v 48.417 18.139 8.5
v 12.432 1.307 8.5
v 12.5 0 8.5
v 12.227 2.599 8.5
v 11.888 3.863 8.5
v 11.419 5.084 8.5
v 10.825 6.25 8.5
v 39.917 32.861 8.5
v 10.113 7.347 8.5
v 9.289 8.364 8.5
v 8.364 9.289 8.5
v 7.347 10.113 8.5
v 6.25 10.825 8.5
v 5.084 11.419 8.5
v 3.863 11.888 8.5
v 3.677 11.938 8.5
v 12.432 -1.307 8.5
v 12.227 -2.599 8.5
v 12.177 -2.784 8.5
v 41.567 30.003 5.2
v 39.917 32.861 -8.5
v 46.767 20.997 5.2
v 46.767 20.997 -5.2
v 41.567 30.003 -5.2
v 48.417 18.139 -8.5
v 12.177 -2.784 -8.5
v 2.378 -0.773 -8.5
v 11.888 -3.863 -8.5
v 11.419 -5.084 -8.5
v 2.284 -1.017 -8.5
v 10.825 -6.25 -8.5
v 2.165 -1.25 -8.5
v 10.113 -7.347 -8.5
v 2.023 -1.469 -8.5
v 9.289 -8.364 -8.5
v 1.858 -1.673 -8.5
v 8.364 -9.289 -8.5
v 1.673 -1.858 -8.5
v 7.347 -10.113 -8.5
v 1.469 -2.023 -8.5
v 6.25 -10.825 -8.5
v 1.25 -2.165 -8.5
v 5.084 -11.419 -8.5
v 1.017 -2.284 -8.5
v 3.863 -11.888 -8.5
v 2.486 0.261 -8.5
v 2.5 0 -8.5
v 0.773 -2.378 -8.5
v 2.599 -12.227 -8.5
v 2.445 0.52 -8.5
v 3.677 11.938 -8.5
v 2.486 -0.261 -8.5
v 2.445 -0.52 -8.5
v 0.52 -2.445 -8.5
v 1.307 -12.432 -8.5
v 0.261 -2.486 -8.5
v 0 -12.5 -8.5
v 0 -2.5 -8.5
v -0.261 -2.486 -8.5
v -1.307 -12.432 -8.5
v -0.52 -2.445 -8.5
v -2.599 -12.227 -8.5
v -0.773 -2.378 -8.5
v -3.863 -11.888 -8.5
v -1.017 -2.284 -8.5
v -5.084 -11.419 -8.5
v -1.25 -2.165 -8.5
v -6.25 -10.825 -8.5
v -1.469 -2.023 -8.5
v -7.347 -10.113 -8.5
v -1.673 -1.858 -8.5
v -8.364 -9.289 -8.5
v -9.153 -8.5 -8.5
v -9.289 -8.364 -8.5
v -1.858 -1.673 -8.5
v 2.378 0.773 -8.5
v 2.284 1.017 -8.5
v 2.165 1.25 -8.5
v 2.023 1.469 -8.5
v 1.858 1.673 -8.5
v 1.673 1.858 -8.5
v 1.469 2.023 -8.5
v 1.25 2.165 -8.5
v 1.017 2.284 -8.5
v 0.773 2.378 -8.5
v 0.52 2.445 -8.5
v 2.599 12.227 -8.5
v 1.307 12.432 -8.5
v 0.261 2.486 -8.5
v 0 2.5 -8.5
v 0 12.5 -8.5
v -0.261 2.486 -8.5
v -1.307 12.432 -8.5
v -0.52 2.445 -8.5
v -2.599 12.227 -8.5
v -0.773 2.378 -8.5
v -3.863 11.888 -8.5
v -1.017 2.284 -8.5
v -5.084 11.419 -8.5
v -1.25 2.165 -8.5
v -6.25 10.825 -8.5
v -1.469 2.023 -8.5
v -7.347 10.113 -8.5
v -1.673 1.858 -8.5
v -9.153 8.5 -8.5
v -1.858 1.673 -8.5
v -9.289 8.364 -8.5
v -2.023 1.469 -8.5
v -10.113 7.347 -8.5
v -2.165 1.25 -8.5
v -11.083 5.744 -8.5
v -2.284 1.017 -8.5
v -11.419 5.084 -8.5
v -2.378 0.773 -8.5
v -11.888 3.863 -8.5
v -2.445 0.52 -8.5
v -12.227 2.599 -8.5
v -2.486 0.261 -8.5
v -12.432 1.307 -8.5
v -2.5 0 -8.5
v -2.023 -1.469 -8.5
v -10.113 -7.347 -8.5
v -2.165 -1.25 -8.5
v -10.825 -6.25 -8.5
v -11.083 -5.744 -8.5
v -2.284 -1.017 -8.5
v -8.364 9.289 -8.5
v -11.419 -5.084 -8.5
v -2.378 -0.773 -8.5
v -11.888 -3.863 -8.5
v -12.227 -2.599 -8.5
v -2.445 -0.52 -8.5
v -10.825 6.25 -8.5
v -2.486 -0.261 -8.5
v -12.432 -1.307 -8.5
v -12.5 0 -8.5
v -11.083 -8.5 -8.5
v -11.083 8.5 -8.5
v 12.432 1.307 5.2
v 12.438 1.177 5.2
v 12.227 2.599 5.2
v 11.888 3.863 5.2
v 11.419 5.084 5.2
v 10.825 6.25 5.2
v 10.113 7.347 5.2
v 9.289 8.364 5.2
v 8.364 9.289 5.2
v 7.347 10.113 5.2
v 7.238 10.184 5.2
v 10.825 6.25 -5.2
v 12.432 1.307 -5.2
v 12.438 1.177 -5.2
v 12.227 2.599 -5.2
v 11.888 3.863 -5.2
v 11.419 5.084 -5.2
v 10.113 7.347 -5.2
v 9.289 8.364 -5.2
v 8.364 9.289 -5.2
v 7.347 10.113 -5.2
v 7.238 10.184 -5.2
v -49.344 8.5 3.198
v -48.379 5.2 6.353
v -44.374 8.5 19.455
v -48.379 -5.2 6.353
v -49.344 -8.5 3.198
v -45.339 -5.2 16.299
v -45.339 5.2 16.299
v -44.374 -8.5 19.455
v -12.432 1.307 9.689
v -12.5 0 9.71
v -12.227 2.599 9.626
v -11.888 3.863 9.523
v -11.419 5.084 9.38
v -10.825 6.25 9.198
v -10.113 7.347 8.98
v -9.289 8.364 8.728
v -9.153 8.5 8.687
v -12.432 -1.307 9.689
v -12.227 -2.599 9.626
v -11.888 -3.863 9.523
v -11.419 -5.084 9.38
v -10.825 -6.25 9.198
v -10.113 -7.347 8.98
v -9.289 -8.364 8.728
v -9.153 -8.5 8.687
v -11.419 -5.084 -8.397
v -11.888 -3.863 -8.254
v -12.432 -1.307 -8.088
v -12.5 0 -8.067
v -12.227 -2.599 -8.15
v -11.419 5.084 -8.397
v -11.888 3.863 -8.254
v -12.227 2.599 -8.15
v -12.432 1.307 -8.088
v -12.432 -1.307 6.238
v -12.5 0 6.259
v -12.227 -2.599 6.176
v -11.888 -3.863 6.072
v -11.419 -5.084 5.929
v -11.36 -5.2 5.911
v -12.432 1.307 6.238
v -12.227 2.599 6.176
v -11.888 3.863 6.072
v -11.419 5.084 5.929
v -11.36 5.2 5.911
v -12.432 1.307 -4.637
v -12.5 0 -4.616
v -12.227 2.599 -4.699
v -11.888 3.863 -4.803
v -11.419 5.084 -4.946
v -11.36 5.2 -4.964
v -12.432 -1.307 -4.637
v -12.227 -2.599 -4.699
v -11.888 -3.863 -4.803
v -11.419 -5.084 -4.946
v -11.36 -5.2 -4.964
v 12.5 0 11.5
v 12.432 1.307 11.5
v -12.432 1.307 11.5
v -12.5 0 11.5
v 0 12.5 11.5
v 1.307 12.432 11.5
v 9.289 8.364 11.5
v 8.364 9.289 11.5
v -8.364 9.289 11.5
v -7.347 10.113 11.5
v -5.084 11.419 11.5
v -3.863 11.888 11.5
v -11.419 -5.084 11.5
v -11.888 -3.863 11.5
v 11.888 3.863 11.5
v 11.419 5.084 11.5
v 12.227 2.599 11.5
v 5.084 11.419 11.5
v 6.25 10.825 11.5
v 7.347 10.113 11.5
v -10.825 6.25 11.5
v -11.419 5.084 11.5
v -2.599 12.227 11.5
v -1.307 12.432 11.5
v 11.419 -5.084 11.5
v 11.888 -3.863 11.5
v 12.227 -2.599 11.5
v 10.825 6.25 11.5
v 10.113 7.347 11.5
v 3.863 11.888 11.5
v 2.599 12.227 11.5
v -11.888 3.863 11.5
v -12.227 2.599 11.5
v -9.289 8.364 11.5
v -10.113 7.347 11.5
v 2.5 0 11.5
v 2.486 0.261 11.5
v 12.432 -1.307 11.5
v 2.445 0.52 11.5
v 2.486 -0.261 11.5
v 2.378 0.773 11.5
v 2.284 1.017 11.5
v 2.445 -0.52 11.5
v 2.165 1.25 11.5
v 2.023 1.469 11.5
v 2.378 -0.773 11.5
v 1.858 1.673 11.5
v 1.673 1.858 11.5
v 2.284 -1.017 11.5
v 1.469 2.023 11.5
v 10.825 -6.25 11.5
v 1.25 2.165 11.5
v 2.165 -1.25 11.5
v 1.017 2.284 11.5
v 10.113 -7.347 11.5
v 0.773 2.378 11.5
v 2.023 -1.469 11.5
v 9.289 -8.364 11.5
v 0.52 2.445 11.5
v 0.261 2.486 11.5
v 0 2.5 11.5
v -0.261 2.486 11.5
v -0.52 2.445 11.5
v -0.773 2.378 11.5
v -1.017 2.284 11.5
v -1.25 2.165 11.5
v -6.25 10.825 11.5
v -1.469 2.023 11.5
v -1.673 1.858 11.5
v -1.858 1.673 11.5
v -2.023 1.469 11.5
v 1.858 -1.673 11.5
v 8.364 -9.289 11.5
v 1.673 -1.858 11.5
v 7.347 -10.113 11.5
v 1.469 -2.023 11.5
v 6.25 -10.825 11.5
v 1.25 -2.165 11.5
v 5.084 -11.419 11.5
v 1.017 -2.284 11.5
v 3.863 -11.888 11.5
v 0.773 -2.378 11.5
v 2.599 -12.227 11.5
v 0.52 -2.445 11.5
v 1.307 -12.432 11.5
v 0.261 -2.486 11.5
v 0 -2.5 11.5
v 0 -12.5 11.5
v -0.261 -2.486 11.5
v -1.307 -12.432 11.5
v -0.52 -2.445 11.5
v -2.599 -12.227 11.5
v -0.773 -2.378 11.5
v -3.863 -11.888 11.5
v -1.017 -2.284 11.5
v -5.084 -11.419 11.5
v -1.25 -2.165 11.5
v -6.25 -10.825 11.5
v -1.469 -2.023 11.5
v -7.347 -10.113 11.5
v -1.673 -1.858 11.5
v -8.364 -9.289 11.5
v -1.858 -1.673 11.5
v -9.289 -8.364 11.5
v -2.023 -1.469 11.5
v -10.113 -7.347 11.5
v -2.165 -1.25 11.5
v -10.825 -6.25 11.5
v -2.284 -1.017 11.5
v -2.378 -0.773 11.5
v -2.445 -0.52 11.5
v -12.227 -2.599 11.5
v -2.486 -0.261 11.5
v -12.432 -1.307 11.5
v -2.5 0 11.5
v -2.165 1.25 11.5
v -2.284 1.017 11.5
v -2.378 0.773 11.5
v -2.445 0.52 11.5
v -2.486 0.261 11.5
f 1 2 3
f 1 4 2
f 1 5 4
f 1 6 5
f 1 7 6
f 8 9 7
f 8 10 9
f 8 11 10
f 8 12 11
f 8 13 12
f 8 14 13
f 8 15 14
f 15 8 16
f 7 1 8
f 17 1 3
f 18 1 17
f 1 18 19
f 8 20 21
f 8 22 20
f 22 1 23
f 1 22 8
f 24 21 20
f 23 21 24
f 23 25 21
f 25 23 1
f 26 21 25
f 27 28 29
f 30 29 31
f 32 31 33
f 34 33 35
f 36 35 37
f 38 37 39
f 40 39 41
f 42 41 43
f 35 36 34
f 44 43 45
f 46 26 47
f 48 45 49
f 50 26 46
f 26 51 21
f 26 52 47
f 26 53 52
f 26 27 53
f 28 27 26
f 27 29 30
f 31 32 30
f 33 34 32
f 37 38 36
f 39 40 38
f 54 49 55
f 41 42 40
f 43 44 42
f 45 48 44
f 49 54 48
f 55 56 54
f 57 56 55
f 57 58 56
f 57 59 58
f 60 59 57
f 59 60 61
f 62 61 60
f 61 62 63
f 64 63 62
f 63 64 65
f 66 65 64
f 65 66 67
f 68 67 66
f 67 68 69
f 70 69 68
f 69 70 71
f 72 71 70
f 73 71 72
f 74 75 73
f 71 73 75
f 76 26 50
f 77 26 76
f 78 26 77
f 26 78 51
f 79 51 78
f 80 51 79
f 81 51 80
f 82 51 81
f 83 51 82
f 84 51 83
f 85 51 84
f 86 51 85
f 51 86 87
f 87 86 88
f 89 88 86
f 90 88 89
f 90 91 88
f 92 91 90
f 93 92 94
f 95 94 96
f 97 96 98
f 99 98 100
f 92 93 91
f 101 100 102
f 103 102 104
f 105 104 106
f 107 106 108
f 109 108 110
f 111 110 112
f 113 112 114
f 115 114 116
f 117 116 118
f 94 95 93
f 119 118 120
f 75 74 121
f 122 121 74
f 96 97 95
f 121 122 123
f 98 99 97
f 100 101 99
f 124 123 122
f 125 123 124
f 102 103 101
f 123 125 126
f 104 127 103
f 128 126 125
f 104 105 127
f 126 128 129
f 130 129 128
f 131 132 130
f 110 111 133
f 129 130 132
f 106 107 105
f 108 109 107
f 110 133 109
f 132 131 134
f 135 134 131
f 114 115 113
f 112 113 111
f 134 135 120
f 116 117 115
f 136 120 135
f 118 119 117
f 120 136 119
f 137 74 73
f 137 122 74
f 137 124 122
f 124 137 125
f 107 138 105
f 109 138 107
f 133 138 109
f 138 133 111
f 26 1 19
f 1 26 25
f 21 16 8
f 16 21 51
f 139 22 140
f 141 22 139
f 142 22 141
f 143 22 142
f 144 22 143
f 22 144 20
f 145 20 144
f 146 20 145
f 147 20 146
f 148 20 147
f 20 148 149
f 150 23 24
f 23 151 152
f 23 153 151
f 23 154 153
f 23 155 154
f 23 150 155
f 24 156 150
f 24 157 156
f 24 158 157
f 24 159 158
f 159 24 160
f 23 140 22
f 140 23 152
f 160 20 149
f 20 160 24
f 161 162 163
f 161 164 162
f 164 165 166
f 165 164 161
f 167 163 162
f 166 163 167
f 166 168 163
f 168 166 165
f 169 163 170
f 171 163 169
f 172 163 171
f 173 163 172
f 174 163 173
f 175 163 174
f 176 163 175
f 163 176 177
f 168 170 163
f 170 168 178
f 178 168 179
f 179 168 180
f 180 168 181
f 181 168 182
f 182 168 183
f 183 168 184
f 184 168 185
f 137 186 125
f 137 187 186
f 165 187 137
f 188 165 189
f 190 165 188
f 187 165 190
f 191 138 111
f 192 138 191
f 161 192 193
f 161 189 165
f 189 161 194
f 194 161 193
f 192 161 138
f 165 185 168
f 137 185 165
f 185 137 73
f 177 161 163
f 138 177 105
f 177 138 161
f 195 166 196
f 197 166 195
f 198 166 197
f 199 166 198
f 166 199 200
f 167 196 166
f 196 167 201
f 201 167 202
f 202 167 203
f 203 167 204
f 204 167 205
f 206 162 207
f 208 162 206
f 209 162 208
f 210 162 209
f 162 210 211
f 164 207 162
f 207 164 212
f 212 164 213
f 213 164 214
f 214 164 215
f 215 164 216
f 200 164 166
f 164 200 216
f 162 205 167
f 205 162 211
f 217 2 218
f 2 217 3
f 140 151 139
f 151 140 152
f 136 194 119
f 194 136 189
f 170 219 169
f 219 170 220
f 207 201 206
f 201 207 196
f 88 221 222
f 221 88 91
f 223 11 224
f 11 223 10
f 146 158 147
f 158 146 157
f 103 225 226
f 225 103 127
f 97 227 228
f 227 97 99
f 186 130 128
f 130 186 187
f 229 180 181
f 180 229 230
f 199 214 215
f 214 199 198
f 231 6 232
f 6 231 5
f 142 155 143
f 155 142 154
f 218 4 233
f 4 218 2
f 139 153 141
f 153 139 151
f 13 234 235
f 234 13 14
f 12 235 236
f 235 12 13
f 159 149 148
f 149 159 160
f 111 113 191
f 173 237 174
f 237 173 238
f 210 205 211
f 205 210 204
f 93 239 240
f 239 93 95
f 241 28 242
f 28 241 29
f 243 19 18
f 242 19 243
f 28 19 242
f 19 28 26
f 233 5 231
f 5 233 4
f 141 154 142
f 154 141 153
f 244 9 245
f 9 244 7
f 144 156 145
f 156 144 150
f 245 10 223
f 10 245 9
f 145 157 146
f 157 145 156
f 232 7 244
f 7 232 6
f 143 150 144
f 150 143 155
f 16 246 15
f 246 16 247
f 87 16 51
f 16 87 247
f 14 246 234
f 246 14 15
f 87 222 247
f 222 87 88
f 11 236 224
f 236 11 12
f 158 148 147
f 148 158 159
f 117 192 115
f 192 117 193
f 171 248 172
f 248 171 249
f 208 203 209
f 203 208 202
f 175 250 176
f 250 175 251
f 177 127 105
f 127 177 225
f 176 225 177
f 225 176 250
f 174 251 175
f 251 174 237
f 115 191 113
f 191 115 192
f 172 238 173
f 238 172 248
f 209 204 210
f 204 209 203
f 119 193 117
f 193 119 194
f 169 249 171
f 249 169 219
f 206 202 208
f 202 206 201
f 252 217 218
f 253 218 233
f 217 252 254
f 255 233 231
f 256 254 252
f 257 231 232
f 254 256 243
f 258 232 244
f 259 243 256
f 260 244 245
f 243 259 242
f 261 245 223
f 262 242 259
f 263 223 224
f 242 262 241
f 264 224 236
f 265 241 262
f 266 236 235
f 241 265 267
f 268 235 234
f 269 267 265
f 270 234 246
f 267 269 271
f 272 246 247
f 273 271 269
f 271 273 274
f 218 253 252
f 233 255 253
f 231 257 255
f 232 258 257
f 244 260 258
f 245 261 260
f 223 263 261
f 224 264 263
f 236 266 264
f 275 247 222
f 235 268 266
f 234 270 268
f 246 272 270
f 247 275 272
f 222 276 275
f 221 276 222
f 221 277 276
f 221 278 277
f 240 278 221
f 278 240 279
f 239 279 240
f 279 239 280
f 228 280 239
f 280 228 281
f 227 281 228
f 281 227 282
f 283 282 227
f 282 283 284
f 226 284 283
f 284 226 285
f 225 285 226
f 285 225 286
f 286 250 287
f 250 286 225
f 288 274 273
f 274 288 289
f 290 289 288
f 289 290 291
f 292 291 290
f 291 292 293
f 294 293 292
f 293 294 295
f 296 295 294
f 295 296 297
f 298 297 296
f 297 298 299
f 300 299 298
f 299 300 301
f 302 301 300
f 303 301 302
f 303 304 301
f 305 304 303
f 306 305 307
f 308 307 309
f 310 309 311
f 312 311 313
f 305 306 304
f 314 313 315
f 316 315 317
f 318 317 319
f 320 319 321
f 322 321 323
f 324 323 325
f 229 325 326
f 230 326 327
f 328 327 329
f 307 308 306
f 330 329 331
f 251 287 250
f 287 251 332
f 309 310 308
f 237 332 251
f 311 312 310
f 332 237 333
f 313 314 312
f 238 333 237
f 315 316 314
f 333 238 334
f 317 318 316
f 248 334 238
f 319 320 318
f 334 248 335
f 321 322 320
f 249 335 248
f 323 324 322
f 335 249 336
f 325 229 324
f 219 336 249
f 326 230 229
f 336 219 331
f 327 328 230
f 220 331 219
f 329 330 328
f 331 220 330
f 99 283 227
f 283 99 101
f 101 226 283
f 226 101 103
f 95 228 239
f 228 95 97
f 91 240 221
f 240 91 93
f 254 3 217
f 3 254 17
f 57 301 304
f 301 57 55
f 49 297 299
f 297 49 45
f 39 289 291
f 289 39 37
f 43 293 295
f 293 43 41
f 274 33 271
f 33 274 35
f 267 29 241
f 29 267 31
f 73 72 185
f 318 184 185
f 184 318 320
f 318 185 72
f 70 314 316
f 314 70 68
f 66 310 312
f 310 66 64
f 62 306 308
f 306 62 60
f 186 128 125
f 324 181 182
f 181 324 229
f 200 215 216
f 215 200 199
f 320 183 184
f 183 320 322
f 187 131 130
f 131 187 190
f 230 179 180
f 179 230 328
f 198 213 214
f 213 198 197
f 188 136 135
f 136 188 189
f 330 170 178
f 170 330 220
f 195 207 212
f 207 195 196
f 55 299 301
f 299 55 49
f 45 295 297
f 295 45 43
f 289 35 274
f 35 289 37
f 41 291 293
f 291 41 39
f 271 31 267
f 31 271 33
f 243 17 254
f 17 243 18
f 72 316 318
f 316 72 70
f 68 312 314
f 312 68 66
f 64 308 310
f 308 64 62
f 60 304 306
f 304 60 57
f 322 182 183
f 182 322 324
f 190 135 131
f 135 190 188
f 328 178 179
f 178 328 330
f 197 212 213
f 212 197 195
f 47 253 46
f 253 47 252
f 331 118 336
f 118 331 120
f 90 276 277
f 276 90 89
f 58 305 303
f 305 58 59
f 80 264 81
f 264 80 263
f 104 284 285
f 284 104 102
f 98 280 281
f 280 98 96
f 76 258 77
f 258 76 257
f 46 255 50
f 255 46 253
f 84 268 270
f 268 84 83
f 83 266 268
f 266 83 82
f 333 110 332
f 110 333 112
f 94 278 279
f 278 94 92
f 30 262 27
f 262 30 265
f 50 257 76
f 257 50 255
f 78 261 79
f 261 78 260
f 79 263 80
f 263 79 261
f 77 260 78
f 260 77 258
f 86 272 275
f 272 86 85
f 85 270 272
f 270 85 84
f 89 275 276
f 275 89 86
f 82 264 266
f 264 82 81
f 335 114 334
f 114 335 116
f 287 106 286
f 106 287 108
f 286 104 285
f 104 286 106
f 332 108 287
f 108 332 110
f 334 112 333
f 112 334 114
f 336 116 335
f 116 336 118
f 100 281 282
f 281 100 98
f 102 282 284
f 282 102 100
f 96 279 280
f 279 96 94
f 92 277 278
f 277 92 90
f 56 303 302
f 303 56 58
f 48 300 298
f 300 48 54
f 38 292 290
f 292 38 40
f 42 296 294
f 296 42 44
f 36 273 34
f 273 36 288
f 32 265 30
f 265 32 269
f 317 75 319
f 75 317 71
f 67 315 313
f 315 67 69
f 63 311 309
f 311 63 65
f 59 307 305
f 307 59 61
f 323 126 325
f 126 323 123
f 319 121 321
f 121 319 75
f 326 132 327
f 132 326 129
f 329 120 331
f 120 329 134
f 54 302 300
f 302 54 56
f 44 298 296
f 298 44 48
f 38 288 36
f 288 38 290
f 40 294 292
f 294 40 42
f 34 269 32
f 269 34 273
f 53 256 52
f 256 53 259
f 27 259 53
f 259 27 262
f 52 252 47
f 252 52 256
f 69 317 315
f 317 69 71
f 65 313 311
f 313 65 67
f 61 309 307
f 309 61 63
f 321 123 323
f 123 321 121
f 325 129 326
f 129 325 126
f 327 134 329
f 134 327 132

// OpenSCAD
rotate([0,0,30])
translate([30,0,0])
difference(){
cube([42,17,17],center=true);
cube([43,10.4,10.4],center=true);
}

difference(){
translate([0,0,-3])
rotate([0,17,0])
translate([-28,0,0])
difference(){
cube([42,17,17],center=true);
cube([43,10.4,10.4],center=true);
}
translate([0,0,-18.5])
cylinder(d=30,h=10);
}

$fn=60;
translate([0,0,-8.5])
difference(){
cylinder(d=25,h=20);
cylinder(d=5,h=20);
}
